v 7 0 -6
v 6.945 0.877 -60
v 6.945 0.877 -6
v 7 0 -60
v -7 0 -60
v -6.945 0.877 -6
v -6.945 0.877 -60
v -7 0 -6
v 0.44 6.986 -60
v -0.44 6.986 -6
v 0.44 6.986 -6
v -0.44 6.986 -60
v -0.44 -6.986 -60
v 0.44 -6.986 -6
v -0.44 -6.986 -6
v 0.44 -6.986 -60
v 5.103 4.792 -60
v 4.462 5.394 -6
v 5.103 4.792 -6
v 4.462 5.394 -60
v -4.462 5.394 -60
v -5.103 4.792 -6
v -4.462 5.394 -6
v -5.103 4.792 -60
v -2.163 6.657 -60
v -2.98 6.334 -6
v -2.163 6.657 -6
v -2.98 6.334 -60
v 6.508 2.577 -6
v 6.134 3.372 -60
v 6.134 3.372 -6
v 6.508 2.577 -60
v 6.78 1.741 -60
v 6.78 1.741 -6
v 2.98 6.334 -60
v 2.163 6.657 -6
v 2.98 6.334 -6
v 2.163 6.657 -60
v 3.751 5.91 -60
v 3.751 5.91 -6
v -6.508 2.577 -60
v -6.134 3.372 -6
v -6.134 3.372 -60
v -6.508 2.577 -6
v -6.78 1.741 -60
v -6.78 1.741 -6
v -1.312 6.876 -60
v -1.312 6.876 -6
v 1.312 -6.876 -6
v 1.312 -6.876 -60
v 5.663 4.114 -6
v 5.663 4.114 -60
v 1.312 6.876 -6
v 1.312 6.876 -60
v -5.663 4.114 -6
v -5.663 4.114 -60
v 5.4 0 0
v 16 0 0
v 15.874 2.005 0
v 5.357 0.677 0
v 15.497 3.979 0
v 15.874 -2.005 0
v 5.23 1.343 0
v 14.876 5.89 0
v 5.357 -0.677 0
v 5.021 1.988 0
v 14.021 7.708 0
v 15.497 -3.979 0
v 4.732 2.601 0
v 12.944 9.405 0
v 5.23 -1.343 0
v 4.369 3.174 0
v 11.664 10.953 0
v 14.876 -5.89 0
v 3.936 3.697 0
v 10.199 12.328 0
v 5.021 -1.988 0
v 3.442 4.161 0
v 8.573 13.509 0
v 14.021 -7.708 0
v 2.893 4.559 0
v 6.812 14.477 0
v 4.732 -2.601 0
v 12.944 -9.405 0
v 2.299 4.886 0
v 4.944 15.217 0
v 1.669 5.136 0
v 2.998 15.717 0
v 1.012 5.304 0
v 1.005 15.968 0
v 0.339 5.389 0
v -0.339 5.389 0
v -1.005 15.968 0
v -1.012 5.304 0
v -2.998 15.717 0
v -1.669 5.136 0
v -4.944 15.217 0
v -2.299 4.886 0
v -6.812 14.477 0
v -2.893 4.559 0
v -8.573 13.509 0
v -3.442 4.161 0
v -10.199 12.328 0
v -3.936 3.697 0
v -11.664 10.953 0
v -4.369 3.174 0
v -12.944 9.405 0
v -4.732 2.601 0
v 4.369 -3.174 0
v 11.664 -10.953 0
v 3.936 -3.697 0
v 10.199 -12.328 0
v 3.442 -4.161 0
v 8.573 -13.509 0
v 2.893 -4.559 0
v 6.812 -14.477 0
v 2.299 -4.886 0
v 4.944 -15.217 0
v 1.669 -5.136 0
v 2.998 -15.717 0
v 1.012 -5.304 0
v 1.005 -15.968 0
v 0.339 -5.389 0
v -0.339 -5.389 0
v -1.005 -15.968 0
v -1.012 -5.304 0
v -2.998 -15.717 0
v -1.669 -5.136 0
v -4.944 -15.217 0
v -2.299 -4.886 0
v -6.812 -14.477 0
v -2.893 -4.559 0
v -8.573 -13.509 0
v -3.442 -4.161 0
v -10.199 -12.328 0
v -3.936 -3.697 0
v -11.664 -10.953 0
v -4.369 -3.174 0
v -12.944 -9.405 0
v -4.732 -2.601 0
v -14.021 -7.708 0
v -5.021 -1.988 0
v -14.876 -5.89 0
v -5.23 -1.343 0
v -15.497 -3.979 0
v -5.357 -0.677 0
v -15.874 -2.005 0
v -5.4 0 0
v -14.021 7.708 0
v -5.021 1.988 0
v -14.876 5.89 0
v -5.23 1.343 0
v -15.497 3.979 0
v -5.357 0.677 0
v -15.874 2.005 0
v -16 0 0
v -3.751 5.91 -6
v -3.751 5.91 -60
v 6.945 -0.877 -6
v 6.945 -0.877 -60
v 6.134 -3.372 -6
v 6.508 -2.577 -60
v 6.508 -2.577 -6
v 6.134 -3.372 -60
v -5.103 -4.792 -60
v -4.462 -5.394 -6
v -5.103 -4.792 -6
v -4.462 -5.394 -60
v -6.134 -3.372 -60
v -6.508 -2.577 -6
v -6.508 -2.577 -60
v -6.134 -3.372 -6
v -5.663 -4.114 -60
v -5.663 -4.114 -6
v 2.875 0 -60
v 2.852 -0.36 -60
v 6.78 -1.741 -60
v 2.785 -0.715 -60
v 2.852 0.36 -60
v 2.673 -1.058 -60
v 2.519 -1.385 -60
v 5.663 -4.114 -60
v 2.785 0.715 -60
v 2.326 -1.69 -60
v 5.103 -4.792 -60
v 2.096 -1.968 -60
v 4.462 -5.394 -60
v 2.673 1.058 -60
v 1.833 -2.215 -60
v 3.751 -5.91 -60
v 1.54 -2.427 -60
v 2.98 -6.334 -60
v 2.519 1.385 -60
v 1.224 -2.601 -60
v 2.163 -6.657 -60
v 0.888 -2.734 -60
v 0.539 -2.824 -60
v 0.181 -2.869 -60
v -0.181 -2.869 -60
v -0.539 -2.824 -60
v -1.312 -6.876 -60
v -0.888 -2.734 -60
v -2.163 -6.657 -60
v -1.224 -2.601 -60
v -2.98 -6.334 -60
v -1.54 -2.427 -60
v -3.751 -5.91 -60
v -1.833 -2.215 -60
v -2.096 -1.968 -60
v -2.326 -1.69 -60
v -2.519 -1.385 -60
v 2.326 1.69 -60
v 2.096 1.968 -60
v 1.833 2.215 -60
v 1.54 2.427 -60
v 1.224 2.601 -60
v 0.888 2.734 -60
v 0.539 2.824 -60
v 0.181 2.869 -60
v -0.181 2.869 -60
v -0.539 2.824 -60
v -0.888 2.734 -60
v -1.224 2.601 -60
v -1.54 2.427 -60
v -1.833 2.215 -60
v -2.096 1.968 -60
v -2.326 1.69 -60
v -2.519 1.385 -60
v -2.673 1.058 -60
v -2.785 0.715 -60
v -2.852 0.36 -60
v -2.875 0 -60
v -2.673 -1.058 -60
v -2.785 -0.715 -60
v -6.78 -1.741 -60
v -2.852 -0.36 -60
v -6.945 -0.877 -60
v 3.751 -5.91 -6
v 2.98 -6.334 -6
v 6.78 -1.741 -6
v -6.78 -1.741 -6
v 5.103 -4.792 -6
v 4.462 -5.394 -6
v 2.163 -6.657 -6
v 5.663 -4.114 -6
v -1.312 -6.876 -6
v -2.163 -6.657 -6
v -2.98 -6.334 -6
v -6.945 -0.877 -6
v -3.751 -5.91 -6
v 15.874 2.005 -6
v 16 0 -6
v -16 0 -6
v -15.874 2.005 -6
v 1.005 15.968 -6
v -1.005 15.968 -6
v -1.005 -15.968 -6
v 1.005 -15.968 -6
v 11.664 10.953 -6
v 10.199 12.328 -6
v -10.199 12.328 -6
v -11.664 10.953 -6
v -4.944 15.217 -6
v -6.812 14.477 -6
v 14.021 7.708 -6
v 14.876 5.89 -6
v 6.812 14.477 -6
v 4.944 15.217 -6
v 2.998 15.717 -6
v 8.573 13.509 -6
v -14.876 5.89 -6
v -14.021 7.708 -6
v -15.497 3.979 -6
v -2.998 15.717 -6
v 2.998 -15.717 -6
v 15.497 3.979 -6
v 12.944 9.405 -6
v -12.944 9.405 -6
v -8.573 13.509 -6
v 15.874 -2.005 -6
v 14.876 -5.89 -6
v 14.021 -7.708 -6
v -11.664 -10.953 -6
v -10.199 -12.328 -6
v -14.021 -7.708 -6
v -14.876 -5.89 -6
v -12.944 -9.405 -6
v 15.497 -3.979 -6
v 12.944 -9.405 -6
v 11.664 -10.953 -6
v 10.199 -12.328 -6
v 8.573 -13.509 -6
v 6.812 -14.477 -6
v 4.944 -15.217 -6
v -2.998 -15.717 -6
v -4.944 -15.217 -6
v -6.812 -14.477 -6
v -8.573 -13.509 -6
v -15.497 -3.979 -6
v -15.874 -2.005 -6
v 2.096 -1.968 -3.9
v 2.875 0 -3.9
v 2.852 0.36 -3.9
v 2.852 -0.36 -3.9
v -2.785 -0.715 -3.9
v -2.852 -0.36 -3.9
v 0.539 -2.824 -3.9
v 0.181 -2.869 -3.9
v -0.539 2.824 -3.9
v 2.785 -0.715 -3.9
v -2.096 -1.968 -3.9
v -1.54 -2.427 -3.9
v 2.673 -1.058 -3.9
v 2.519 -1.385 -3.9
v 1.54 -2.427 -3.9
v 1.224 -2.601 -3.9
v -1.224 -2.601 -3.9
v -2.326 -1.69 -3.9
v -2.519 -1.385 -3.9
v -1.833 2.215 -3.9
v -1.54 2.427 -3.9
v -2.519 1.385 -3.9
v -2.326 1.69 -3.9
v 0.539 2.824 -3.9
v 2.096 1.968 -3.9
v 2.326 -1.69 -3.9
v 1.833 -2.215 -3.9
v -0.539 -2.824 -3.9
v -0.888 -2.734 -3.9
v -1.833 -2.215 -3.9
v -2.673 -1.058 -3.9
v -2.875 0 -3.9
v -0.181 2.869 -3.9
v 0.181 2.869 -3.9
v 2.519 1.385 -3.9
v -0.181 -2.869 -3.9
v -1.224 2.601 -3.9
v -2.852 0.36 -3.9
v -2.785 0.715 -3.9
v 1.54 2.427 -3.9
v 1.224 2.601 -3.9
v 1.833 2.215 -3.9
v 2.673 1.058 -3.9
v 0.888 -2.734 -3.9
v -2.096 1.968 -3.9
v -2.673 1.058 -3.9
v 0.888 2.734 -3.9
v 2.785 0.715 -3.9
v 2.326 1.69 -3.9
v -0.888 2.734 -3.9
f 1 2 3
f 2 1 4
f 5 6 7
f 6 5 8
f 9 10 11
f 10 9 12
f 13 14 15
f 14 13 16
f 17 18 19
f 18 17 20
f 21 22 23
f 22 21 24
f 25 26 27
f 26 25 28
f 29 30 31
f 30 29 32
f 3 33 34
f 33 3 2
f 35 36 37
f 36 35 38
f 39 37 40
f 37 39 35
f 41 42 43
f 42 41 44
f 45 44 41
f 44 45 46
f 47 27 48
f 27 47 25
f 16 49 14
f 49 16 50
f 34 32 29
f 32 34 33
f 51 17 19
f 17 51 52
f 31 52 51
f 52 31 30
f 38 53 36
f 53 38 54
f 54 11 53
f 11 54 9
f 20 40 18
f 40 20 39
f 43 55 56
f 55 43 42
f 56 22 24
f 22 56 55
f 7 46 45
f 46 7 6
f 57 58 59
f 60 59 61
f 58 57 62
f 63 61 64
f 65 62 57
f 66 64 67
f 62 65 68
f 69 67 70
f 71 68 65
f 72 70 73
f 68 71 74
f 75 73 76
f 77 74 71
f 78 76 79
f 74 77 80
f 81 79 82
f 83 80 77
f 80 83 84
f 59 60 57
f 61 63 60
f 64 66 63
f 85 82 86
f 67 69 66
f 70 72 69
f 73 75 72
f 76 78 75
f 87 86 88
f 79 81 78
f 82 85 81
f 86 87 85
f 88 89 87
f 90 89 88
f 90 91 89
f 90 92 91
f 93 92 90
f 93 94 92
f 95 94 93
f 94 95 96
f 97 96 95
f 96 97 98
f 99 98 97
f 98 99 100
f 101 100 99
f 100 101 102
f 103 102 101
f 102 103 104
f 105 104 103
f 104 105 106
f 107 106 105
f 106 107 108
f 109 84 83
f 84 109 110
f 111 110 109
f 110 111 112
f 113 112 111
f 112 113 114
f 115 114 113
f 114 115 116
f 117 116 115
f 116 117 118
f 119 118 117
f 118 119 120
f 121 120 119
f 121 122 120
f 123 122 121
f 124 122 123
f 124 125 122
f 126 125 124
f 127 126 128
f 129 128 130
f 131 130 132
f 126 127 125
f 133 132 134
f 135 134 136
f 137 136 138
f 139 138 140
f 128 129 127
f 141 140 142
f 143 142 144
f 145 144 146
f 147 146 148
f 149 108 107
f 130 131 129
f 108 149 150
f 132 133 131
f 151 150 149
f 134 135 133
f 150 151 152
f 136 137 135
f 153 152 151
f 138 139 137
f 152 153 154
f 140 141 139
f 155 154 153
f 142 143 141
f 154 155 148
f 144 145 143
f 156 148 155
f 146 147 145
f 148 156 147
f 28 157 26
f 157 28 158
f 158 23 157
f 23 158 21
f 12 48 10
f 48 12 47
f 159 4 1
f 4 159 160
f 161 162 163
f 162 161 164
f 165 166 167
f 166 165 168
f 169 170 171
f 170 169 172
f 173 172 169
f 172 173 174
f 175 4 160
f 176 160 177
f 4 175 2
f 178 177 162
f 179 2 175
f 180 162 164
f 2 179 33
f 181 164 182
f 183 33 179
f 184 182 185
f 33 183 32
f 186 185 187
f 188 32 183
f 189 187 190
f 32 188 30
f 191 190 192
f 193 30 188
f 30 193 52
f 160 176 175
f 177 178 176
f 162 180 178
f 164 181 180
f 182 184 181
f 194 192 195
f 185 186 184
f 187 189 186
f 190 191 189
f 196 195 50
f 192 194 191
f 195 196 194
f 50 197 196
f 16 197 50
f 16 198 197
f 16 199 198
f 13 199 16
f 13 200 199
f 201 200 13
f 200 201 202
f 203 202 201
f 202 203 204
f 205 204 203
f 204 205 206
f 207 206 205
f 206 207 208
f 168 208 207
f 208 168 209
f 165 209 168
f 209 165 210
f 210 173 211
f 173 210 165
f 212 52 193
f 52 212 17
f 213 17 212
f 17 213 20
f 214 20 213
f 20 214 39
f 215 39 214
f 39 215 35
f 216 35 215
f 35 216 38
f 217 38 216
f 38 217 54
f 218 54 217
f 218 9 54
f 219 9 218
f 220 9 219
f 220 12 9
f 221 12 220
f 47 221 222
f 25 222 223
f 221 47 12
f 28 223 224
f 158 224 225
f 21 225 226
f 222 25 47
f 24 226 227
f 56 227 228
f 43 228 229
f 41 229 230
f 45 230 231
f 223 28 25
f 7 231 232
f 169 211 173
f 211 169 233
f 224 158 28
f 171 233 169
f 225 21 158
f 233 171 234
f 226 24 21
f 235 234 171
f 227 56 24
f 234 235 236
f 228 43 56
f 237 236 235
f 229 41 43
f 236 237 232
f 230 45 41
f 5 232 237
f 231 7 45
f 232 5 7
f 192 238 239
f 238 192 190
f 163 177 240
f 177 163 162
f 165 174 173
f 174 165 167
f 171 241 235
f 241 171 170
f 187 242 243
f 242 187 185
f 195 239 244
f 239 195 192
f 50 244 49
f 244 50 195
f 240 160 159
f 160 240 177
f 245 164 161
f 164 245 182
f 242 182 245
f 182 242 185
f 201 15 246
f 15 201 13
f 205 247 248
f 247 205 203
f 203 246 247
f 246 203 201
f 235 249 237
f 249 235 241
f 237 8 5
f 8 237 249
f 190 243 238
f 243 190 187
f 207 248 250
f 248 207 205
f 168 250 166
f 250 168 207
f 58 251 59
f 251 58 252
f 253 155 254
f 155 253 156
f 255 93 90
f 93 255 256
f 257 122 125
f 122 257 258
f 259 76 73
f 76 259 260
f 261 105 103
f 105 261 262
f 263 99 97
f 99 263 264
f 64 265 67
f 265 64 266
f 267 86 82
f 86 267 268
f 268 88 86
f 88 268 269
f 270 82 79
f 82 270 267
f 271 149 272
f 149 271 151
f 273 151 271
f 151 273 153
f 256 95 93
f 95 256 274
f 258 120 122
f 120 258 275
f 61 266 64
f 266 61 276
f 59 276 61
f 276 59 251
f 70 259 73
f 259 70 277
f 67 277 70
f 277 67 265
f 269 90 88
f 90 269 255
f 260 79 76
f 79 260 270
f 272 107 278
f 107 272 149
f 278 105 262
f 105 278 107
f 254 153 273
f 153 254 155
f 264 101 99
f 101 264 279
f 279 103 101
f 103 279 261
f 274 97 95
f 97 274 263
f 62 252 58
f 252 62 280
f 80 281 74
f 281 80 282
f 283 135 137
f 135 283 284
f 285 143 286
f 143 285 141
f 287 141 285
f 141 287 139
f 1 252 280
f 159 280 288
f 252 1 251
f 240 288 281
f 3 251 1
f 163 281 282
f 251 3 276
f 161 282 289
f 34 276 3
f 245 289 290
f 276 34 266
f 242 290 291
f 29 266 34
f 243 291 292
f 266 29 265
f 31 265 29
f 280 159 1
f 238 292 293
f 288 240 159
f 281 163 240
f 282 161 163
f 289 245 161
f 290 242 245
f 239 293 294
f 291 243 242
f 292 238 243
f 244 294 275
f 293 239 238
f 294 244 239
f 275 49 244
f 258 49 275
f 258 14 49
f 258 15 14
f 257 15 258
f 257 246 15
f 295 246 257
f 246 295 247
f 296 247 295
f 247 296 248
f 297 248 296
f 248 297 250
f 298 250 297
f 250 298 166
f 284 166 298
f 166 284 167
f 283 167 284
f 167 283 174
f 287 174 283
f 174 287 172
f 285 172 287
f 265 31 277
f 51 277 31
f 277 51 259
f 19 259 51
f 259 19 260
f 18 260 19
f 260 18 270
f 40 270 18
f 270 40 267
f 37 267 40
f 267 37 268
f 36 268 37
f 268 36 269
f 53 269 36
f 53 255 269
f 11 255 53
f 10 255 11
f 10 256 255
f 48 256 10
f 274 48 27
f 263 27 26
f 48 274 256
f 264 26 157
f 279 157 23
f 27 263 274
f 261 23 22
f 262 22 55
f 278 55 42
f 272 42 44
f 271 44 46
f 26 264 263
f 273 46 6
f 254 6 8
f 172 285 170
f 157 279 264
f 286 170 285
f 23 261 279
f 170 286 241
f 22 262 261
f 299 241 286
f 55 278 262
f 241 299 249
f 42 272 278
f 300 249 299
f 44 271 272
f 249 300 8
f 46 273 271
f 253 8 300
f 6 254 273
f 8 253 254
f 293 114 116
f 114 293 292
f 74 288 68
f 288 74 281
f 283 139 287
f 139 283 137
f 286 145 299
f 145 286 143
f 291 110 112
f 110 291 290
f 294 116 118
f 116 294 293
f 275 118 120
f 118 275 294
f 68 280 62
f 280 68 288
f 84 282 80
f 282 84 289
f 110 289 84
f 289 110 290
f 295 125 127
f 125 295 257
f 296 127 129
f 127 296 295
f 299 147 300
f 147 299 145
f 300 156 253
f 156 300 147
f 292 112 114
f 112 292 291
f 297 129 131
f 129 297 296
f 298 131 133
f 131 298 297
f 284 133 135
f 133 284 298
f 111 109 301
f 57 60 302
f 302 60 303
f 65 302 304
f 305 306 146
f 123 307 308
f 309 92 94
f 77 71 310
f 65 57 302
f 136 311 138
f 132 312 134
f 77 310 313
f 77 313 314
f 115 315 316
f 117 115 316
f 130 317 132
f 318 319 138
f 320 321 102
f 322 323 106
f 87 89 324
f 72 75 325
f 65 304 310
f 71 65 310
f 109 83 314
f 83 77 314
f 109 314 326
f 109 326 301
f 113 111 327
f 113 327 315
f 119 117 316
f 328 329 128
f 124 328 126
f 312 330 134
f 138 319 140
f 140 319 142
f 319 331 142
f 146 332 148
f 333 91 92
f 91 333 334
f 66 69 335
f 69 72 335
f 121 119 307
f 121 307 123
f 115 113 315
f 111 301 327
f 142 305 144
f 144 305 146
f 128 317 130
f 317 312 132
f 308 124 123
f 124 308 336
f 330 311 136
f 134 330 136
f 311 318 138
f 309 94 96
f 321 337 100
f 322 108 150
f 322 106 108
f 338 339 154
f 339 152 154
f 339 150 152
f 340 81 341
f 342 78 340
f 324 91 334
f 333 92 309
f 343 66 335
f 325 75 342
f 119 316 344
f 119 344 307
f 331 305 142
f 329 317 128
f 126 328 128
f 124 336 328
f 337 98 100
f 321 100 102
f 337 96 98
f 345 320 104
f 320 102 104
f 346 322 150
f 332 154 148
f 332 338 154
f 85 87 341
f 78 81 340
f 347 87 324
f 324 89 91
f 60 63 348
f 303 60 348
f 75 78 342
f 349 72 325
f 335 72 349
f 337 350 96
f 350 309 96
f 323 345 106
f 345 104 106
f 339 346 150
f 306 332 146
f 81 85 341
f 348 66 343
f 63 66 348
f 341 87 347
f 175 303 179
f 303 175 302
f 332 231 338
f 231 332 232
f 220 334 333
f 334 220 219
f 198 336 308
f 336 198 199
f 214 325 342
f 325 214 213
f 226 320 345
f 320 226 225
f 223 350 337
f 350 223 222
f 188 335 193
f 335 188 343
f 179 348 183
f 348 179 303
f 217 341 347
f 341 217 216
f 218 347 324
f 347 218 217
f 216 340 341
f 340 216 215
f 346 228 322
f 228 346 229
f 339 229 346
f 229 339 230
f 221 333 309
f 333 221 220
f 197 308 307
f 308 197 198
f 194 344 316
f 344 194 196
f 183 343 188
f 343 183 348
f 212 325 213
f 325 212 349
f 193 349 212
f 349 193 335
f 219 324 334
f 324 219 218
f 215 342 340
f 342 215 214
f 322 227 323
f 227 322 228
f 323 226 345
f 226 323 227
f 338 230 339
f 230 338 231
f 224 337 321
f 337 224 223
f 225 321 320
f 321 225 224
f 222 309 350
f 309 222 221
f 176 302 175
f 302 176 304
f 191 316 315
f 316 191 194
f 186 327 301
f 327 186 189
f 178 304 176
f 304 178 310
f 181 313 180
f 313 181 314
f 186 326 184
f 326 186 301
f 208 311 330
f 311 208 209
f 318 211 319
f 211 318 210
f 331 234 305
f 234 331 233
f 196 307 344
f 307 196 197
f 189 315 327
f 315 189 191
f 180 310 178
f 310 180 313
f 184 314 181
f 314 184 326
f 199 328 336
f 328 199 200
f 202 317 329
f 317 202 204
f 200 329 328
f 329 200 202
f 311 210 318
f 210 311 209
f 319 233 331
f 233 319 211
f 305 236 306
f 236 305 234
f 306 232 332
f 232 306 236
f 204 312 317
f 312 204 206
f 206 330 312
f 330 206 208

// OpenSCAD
$fn = 50;


difference() {
	union() {
		translate(v = [0, 0, -60.0000000000]) {
			cylinder(h = 60, r = 7.0000000000);
		}
		translate(v = [0, 0, -6.0000000000]) {
			cylinder(h = 6, r = 16.0000000000);
		}
	}
	union() {
		translate(v = [0, 0, 0]) {
			rotate(a = [0, 0, 0]) {
				difference() {
					union() {
						#translate(v = [0, 0, -60.0000000000]) {
							cylinder(h = 60, r = 2.6000000000);
						}
						#translate(v = [0, 0, -3.9000000000]) {
							cylinder(h = 3.9000000000, r1 = 2.8750000000, r2 = 5.4000000000);
						}
						#translate(v = [0, 0, -60.0000000000]) {
							cylinder(h = 60, r = 2.8750000000);
						}
						#translate(v = [0, 0, -60.0000000000]) {
							cylinder(h = 60, r = 2.6000000000);
						}
					}
					union();
				}
			}
		}
	}
}
